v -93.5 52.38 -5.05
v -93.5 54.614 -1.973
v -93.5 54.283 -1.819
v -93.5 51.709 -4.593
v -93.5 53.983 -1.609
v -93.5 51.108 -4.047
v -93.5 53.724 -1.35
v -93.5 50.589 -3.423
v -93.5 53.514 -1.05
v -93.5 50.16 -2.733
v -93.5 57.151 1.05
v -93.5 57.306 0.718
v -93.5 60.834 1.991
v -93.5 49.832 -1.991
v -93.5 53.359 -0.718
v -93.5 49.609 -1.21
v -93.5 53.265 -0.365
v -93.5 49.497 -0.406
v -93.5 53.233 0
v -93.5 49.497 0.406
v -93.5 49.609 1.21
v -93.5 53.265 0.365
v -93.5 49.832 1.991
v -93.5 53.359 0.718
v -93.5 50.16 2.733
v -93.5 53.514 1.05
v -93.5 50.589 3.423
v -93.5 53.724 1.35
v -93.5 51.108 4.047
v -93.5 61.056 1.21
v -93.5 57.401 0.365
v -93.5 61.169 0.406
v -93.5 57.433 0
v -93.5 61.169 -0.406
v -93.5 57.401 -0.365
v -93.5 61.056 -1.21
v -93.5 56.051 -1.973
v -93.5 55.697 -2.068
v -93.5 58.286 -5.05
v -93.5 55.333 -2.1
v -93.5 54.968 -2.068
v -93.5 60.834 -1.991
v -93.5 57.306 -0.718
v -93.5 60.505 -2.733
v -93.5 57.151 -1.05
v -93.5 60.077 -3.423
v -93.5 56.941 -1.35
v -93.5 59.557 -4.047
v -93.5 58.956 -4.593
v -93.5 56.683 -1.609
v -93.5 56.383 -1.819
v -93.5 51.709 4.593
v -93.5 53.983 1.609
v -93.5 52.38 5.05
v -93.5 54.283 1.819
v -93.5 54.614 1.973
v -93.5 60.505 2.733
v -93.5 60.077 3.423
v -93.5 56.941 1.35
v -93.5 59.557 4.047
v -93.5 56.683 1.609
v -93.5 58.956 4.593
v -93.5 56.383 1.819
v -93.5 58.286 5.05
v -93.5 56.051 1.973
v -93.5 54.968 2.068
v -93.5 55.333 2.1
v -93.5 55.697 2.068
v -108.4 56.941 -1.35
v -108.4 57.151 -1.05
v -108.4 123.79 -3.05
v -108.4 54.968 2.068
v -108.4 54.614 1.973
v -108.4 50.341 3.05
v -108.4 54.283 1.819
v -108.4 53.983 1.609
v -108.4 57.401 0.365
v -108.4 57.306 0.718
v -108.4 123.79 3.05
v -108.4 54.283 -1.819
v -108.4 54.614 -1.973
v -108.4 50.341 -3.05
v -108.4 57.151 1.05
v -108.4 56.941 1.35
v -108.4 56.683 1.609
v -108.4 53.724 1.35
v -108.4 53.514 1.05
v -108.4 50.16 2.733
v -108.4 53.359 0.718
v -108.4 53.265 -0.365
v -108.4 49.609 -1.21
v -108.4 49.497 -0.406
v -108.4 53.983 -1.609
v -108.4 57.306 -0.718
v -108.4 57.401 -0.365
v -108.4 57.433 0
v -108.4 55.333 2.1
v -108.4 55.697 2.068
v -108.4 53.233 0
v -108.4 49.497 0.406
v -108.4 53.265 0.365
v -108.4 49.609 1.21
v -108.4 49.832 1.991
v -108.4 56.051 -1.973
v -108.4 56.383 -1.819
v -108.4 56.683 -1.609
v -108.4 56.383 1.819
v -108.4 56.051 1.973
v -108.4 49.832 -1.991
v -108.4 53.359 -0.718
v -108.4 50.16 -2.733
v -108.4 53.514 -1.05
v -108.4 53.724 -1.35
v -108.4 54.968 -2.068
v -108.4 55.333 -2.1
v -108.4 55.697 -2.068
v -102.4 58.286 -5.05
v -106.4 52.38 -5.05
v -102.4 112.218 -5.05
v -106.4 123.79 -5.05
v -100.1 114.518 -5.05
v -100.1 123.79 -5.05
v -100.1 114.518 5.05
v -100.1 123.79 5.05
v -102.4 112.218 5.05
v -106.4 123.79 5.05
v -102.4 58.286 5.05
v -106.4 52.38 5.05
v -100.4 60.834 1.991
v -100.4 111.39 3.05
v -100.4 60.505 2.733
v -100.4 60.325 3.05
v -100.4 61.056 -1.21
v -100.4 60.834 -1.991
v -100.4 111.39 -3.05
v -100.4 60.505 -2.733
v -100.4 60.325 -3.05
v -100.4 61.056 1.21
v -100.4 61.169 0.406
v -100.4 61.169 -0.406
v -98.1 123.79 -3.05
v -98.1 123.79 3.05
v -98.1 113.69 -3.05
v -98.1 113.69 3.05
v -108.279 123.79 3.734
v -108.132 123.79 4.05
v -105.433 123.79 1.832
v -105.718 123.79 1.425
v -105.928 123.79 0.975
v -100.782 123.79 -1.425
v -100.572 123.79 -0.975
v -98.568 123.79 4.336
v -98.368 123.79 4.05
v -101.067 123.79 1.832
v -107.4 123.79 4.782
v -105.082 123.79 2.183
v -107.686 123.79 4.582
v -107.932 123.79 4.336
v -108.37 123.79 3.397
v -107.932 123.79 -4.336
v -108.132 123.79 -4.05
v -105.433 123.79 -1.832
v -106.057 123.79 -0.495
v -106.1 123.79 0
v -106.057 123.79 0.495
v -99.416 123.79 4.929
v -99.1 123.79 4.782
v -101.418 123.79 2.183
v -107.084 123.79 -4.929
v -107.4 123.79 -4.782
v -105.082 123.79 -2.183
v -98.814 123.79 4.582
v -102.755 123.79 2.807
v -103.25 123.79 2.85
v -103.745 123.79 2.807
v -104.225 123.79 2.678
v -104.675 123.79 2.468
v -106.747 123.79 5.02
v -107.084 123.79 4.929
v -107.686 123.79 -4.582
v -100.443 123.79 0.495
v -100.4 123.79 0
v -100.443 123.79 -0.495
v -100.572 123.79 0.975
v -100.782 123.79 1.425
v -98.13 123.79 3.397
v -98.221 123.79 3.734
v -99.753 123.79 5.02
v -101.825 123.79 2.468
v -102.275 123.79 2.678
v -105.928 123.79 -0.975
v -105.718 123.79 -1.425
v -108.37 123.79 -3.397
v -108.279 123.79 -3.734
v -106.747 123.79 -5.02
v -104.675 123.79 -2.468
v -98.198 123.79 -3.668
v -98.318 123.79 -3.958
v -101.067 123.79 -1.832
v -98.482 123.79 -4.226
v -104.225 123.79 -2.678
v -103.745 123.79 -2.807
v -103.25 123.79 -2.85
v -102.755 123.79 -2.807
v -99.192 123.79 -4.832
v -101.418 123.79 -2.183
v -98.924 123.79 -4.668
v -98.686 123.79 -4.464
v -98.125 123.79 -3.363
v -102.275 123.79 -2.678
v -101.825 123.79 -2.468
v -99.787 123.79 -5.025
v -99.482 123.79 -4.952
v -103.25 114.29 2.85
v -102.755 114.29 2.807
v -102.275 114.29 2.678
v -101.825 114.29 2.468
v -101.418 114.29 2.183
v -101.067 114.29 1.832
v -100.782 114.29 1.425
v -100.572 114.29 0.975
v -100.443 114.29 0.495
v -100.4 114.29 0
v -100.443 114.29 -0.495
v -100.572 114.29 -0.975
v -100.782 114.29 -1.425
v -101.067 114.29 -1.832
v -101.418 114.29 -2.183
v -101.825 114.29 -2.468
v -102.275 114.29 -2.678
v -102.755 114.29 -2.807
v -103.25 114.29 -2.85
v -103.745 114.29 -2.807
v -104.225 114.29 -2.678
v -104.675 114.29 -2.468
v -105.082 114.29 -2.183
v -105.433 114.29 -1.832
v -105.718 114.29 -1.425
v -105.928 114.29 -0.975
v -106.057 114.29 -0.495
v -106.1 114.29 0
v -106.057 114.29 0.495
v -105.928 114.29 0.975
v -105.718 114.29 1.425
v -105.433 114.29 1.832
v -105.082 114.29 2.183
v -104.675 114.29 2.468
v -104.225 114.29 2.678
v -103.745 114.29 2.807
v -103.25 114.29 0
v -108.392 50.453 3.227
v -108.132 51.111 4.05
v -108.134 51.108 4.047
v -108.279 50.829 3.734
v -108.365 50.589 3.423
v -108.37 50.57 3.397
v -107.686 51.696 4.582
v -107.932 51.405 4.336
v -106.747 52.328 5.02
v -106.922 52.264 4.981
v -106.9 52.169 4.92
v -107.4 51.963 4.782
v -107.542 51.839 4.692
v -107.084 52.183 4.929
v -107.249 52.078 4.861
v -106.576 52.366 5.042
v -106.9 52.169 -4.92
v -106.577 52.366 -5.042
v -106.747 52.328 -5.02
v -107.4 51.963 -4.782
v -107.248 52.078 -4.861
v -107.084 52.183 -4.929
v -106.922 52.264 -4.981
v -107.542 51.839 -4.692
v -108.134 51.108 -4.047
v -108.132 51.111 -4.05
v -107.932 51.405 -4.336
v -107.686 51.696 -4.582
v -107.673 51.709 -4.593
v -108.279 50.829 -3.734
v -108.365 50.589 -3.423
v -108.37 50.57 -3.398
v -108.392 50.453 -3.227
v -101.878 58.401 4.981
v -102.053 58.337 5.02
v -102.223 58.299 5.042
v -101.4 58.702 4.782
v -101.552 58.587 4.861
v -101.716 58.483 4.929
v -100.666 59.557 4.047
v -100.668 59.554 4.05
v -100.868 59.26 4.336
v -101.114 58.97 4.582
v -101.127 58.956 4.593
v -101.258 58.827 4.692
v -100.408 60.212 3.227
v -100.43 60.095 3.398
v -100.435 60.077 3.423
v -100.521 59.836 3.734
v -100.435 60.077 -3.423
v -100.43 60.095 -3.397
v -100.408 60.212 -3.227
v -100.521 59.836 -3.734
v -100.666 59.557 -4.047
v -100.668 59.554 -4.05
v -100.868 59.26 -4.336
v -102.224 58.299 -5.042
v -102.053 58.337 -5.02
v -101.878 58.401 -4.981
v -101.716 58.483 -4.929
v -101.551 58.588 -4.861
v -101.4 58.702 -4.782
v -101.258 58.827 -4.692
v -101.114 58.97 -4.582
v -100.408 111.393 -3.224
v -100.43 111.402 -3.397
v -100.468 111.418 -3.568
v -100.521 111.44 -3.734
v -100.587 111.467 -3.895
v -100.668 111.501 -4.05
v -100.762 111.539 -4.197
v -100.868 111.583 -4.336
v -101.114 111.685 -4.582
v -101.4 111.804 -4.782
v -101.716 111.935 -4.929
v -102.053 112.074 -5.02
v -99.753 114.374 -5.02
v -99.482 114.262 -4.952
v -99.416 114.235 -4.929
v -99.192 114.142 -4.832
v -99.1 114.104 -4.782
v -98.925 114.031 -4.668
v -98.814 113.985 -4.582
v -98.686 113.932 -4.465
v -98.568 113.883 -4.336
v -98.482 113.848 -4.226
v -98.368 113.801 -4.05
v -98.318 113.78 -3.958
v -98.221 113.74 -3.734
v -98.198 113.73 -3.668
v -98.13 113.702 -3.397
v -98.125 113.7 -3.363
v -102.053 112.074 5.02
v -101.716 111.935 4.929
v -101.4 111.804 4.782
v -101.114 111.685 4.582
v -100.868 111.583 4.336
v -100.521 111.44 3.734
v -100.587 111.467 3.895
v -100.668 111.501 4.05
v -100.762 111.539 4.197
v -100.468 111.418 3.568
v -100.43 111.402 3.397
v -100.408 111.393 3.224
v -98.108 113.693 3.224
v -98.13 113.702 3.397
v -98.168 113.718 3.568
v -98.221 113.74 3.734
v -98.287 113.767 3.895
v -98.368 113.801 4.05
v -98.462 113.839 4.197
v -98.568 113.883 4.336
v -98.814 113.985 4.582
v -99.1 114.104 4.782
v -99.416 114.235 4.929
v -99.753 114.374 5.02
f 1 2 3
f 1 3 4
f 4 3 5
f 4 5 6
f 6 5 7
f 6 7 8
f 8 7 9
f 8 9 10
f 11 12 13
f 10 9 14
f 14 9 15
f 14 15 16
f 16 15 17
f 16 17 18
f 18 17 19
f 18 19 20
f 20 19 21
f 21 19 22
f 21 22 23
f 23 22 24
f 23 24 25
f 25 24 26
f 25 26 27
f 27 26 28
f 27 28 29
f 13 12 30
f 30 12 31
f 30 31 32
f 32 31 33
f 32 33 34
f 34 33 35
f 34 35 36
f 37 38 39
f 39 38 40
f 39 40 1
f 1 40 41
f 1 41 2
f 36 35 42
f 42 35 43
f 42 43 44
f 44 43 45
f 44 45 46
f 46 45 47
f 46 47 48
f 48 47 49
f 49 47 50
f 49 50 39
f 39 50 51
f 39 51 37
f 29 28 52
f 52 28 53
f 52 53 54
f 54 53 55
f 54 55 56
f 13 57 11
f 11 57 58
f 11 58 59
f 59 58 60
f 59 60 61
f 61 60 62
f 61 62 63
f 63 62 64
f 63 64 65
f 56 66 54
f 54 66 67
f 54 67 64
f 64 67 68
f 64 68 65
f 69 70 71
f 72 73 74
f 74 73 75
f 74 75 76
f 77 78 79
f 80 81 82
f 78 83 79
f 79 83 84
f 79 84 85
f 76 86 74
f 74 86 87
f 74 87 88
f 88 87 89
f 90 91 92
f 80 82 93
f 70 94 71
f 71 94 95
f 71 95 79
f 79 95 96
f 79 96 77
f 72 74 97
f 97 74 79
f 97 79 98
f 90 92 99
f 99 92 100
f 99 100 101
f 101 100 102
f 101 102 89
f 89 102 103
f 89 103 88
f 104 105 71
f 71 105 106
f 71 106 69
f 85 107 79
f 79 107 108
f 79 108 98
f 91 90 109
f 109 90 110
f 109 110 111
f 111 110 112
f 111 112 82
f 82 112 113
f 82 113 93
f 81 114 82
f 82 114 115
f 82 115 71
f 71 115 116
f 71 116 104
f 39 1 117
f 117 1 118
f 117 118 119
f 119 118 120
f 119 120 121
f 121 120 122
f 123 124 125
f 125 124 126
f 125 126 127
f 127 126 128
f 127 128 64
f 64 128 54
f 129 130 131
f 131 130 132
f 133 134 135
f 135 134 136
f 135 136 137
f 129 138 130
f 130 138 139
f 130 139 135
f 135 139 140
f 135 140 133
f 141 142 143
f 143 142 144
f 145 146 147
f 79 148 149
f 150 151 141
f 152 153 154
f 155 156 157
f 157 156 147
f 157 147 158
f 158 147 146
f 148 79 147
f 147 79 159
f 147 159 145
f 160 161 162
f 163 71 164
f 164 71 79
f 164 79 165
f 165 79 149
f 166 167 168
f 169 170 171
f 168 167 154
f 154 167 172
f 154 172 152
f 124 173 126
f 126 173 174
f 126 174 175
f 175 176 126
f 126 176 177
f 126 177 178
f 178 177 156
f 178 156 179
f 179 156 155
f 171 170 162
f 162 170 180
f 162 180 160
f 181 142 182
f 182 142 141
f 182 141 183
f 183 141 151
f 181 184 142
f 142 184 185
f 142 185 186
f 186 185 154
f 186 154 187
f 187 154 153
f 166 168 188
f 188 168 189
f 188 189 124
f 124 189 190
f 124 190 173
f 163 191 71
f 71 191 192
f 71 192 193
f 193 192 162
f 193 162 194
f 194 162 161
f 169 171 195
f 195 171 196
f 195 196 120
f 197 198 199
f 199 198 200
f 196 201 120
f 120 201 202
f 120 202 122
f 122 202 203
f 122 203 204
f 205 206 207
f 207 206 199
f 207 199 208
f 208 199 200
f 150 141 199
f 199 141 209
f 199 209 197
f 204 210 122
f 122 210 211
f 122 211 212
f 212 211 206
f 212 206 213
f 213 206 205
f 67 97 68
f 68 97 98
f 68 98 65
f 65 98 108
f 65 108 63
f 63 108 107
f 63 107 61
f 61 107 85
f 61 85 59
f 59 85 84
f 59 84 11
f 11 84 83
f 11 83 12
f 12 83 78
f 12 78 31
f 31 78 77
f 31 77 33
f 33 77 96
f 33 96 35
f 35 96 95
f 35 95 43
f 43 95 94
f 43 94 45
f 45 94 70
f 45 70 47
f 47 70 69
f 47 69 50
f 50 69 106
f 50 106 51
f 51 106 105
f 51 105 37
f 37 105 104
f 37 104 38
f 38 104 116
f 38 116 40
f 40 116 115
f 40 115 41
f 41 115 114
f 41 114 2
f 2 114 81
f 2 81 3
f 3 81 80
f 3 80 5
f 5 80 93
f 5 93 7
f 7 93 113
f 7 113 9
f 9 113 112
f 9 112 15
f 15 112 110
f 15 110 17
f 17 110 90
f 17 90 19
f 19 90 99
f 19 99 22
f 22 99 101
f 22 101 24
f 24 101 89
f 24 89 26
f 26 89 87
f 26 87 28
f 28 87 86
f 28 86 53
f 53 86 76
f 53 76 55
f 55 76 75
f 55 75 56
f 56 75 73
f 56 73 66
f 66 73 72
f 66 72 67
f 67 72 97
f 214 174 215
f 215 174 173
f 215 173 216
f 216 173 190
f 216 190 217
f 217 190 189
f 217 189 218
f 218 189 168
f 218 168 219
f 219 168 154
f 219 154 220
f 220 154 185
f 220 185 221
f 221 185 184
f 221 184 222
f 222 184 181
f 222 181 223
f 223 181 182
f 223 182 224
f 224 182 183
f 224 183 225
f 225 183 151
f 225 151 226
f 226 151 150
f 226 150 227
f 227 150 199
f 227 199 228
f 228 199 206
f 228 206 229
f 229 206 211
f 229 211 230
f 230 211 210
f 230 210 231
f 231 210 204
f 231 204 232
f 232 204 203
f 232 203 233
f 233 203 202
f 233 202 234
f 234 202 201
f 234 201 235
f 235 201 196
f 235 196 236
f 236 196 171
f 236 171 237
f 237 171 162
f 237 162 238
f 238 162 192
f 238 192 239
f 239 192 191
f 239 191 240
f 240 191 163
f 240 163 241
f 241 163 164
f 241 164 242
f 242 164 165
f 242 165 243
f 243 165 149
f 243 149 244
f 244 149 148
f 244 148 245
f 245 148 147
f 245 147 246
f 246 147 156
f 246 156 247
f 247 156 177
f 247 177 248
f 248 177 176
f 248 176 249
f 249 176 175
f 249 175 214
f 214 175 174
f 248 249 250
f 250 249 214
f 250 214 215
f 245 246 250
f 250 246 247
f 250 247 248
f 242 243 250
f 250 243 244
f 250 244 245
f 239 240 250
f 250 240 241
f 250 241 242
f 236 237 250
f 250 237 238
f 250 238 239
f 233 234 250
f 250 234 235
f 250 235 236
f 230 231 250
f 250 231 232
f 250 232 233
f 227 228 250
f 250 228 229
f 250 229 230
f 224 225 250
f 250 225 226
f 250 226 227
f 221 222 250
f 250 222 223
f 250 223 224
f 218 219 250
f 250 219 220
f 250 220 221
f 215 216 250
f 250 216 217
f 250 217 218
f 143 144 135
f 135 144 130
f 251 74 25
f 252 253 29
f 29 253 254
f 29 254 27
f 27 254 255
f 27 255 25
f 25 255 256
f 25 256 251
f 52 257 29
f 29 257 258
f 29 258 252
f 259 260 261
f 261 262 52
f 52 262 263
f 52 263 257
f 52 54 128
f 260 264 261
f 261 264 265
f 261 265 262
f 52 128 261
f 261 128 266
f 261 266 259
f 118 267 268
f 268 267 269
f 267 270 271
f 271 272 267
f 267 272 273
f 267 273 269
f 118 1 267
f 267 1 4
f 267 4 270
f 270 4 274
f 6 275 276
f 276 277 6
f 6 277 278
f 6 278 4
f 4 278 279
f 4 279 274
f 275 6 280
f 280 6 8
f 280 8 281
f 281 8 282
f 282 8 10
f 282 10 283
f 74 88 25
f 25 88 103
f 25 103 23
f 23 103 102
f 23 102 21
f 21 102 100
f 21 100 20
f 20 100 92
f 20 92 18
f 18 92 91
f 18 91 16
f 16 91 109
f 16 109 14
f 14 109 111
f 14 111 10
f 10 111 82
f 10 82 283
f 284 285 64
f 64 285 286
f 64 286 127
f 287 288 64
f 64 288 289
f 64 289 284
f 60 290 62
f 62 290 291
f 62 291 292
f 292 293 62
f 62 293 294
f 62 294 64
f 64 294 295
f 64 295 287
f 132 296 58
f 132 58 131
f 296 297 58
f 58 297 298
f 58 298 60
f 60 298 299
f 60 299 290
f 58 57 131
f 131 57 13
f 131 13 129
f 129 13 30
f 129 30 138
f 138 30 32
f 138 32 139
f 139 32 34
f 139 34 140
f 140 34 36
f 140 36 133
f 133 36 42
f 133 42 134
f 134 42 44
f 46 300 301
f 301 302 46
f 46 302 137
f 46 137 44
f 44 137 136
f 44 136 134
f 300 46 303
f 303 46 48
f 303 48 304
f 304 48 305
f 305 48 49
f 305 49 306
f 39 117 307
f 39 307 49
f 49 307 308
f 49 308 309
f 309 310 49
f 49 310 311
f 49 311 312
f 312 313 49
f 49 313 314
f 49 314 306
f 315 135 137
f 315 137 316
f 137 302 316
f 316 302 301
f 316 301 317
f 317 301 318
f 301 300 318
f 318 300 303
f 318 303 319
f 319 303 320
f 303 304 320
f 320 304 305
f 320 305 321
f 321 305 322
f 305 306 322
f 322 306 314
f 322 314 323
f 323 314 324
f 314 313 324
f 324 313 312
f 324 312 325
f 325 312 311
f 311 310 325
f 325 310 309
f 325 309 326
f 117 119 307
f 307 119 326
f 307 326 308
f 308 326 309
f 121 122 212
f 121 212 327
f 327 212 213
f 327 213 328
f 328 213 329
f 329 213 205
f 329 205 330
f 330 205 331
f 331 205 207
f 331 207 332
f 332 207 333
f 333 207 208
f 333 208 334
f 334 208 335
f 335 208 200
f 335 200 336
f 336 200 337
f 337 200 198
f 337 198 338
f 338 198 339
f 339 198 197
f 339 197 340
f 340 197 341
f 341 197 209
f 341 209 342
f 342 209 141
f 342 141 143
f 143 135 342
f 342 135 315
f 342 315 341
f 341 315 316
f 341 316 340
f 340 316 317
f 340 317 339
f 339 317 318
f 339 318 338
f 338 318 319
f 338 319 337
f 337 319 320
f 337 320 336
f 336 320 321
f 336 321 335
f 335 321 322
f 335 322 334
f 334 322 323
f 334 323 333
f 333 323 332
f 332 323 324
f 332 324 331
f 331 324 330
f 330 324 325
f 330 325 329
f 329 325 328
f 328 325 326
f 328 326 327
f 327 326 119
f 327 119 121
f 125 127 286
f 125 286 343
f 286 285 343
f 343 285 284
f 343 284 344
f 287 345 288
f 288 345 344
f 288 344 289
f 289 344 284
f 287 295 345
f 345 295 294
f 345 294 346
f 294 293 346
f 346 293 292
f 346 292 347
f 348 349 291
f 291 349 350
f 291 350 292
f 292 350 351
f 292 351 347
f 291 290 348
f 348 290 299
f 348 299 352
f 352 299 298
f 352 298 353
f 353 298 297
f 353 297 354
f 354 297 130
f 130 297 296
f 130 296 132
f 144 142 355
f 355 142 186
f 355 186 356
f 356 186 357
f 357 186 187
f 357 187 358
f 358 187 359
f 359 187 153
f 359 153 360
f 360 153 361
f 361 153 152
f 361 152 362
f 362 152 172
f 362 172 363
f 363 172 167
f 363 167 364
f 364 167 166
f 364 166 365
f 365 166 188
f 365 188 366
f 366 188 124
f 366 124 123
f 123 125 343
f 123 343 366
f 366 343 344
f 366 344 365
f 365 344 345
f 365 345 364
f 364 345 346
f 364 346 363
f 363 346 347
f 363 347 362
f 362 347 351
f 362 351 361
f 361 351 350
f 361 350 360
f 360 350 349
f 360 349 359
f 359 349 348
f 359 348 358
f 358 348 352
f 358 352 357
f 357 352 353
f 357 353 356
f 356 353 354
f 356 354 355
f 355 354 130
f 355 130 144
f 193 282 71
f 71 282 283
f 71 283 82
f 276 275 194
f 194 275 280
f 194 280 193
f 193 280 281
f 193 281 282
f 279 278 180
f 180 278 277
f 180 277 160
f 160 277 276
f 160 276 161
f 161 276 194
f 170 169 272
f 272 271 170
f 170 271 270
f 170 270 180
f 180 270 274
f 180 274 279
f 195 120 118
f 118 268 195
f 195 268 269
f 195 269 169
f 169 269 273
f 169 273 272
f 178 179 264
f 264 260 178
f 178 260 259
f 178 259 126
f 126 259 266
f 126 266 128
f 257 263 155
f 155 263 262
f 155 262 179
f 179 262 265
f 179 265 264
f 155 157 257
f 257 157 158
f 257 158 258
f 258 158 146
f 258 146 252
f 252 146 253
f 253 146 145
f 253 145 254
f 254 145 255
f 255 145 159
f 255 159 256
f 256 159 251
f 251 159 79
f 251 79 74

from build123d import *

# Parameters (mm, degrees)
BOSS_EXTRUDE1_DEPTH = 5.05
SKETCH2_R           = 2.1
CUT_EXTRUDE1_DEPTH  = 15.9
SKETCH3_R           = 2.85
CUT_EXTRUDE2_DEPTH  = 9.5
BOSS_EXTRUDE2_DEPTH = 10.1
CUT_EXTRUDE3_DEPTH  = 15.9
CUT_EXTRUDE4_START  = -14.9
CUT_EXTRUDE4_DEPTH  = 6.9
FILLET1_R           = 2


with BuildPart() as part:
    # Sketch1 → Boss-Extrude1 (new body, symmetric)
    with BuildSketch(Plane.XY):
        Polygon((-93.5, 49.48271764), (-108.4, 49.48271764), (-108.4, 123.78957189), (-98.1, 123.78957189), (-98.1, 113.68957189), (-100.4, 113.68957189), (-100.4, 61.18271764), (-93.5, 61.18271764), align=None)
    extrude(amount=BOSS_EXTRUDE1_DEPTH, both=True)

    # Sketch2 → Cut-Extrude1 (cut, through all)
    with BuildSketch(Plane.ZY.offset(108.4)):
        with Locations((0, 55.33271764)):
            Circle(SKETCH2_R)
    extrude(amount=-CUT_EXTRUDE1_DEPTH, mode=Mode.SUBTRACT)

    # Sketch3 → Cut-Extrude2 (cut)
    with BuildSketch(Plane(origin=(0, 123.78957189, 0), x_dir=(1, 0, 0), z_dir=(0, 1, 0))):
        with Locations((-103.25, 0)):
            Circle(SKETCH3_R)
    extrude(amount=-CUT_EXTRUDE2_DEPTH, mode=Mode.SUBTRACT)

    # Sketch5 → Boss-Extrude2 (add)
    with BuildSketch(Plane.XY.offset(5.05)):
        Polygon((-98.1, 113.68957189), (-100.4, 111.38957189), (-100.4, 113.68957189), align=None)
    extrude(amount=-BOSS_EXTRUDE2_DEPTH)

    # Sketch4 → Cut-Extrude3 (cut, through all)
    with BuildSketch(Plane.ZY.offset(108.4)):
        with BuildLine():
            Line((-5.05, 52.379753028), (-5.05, 49.48271764))
            Line((-5.05, 49.48271764), (0, 49.48271764))
            ThreePointArc((0, 49.48271764), (-2.910984114, 50.258402761), (-5.05, 52.379753028))
        make_face()
        with BuildLine():
            ThreePointArc((5.05, 52.379753028), (2.910984114, 50.258402761), (0, 49.48271764))
            Line((0, 49.48271764), (5.05, 49.48271764))
            Line((5.05, 49.48271764), (5.05, 52.379753028))
        make_face()
    extrude(amount=-CUT_EXTRUDE3_DEPTH, mode=Mode.SUBTRACT)

    # Sketch4<3> → Cut-Extrude4 (cut)
    with BuildSketch(Plane.ZY.offset(108.4).offset(CUT_EXTRUDE4_START)):
        with BuildLine():
            Line((-5.05, 61.18271764), (-5.05, 58.285682252))
            ThreePointArc((-5.05, 58.285682252), (-2.910984114, 60.407032519), (0, 61.18271764))
            Line((0, 61.18271764), (-5.05, 61.18271764))
        make_face()
        with BuildLine():
            ThreePointArc((0, 61.18271764), (2.910984114, 60.407032519), (5.05, 58.285682252))
            Line((5.05, 58.285682252), (5.05, 61.18271764))
            Line((5.05, 61.18271764), (0, 61.18271764))
        make_face()
    extrude(amount=CUT_EXTRUDE4_DEPTH, mode=Mode.SUBTRACT)

    # Fillet1
    fillet1_edges = [part.edges().sort_by_distance(p)[0] for p in [
        (-108.4, 88.084662459, -5.05),
        (-100.4, 84.837627071, 5.05),
        (-98.1, 118.73957189, 5.05),
        (-99.25, 112.53957189, 5.05),
        (-99.25, 112.53957189, -5.05),
        (-108.4, 88.084662459, 5.05),
        (-98.1, 118.73957189, -5.05),
        (-100.4, 84.837627071, -5.05),
    ]]
    fillet(fillet1_edges, radius=FILLET1_R)


solid = part.part
